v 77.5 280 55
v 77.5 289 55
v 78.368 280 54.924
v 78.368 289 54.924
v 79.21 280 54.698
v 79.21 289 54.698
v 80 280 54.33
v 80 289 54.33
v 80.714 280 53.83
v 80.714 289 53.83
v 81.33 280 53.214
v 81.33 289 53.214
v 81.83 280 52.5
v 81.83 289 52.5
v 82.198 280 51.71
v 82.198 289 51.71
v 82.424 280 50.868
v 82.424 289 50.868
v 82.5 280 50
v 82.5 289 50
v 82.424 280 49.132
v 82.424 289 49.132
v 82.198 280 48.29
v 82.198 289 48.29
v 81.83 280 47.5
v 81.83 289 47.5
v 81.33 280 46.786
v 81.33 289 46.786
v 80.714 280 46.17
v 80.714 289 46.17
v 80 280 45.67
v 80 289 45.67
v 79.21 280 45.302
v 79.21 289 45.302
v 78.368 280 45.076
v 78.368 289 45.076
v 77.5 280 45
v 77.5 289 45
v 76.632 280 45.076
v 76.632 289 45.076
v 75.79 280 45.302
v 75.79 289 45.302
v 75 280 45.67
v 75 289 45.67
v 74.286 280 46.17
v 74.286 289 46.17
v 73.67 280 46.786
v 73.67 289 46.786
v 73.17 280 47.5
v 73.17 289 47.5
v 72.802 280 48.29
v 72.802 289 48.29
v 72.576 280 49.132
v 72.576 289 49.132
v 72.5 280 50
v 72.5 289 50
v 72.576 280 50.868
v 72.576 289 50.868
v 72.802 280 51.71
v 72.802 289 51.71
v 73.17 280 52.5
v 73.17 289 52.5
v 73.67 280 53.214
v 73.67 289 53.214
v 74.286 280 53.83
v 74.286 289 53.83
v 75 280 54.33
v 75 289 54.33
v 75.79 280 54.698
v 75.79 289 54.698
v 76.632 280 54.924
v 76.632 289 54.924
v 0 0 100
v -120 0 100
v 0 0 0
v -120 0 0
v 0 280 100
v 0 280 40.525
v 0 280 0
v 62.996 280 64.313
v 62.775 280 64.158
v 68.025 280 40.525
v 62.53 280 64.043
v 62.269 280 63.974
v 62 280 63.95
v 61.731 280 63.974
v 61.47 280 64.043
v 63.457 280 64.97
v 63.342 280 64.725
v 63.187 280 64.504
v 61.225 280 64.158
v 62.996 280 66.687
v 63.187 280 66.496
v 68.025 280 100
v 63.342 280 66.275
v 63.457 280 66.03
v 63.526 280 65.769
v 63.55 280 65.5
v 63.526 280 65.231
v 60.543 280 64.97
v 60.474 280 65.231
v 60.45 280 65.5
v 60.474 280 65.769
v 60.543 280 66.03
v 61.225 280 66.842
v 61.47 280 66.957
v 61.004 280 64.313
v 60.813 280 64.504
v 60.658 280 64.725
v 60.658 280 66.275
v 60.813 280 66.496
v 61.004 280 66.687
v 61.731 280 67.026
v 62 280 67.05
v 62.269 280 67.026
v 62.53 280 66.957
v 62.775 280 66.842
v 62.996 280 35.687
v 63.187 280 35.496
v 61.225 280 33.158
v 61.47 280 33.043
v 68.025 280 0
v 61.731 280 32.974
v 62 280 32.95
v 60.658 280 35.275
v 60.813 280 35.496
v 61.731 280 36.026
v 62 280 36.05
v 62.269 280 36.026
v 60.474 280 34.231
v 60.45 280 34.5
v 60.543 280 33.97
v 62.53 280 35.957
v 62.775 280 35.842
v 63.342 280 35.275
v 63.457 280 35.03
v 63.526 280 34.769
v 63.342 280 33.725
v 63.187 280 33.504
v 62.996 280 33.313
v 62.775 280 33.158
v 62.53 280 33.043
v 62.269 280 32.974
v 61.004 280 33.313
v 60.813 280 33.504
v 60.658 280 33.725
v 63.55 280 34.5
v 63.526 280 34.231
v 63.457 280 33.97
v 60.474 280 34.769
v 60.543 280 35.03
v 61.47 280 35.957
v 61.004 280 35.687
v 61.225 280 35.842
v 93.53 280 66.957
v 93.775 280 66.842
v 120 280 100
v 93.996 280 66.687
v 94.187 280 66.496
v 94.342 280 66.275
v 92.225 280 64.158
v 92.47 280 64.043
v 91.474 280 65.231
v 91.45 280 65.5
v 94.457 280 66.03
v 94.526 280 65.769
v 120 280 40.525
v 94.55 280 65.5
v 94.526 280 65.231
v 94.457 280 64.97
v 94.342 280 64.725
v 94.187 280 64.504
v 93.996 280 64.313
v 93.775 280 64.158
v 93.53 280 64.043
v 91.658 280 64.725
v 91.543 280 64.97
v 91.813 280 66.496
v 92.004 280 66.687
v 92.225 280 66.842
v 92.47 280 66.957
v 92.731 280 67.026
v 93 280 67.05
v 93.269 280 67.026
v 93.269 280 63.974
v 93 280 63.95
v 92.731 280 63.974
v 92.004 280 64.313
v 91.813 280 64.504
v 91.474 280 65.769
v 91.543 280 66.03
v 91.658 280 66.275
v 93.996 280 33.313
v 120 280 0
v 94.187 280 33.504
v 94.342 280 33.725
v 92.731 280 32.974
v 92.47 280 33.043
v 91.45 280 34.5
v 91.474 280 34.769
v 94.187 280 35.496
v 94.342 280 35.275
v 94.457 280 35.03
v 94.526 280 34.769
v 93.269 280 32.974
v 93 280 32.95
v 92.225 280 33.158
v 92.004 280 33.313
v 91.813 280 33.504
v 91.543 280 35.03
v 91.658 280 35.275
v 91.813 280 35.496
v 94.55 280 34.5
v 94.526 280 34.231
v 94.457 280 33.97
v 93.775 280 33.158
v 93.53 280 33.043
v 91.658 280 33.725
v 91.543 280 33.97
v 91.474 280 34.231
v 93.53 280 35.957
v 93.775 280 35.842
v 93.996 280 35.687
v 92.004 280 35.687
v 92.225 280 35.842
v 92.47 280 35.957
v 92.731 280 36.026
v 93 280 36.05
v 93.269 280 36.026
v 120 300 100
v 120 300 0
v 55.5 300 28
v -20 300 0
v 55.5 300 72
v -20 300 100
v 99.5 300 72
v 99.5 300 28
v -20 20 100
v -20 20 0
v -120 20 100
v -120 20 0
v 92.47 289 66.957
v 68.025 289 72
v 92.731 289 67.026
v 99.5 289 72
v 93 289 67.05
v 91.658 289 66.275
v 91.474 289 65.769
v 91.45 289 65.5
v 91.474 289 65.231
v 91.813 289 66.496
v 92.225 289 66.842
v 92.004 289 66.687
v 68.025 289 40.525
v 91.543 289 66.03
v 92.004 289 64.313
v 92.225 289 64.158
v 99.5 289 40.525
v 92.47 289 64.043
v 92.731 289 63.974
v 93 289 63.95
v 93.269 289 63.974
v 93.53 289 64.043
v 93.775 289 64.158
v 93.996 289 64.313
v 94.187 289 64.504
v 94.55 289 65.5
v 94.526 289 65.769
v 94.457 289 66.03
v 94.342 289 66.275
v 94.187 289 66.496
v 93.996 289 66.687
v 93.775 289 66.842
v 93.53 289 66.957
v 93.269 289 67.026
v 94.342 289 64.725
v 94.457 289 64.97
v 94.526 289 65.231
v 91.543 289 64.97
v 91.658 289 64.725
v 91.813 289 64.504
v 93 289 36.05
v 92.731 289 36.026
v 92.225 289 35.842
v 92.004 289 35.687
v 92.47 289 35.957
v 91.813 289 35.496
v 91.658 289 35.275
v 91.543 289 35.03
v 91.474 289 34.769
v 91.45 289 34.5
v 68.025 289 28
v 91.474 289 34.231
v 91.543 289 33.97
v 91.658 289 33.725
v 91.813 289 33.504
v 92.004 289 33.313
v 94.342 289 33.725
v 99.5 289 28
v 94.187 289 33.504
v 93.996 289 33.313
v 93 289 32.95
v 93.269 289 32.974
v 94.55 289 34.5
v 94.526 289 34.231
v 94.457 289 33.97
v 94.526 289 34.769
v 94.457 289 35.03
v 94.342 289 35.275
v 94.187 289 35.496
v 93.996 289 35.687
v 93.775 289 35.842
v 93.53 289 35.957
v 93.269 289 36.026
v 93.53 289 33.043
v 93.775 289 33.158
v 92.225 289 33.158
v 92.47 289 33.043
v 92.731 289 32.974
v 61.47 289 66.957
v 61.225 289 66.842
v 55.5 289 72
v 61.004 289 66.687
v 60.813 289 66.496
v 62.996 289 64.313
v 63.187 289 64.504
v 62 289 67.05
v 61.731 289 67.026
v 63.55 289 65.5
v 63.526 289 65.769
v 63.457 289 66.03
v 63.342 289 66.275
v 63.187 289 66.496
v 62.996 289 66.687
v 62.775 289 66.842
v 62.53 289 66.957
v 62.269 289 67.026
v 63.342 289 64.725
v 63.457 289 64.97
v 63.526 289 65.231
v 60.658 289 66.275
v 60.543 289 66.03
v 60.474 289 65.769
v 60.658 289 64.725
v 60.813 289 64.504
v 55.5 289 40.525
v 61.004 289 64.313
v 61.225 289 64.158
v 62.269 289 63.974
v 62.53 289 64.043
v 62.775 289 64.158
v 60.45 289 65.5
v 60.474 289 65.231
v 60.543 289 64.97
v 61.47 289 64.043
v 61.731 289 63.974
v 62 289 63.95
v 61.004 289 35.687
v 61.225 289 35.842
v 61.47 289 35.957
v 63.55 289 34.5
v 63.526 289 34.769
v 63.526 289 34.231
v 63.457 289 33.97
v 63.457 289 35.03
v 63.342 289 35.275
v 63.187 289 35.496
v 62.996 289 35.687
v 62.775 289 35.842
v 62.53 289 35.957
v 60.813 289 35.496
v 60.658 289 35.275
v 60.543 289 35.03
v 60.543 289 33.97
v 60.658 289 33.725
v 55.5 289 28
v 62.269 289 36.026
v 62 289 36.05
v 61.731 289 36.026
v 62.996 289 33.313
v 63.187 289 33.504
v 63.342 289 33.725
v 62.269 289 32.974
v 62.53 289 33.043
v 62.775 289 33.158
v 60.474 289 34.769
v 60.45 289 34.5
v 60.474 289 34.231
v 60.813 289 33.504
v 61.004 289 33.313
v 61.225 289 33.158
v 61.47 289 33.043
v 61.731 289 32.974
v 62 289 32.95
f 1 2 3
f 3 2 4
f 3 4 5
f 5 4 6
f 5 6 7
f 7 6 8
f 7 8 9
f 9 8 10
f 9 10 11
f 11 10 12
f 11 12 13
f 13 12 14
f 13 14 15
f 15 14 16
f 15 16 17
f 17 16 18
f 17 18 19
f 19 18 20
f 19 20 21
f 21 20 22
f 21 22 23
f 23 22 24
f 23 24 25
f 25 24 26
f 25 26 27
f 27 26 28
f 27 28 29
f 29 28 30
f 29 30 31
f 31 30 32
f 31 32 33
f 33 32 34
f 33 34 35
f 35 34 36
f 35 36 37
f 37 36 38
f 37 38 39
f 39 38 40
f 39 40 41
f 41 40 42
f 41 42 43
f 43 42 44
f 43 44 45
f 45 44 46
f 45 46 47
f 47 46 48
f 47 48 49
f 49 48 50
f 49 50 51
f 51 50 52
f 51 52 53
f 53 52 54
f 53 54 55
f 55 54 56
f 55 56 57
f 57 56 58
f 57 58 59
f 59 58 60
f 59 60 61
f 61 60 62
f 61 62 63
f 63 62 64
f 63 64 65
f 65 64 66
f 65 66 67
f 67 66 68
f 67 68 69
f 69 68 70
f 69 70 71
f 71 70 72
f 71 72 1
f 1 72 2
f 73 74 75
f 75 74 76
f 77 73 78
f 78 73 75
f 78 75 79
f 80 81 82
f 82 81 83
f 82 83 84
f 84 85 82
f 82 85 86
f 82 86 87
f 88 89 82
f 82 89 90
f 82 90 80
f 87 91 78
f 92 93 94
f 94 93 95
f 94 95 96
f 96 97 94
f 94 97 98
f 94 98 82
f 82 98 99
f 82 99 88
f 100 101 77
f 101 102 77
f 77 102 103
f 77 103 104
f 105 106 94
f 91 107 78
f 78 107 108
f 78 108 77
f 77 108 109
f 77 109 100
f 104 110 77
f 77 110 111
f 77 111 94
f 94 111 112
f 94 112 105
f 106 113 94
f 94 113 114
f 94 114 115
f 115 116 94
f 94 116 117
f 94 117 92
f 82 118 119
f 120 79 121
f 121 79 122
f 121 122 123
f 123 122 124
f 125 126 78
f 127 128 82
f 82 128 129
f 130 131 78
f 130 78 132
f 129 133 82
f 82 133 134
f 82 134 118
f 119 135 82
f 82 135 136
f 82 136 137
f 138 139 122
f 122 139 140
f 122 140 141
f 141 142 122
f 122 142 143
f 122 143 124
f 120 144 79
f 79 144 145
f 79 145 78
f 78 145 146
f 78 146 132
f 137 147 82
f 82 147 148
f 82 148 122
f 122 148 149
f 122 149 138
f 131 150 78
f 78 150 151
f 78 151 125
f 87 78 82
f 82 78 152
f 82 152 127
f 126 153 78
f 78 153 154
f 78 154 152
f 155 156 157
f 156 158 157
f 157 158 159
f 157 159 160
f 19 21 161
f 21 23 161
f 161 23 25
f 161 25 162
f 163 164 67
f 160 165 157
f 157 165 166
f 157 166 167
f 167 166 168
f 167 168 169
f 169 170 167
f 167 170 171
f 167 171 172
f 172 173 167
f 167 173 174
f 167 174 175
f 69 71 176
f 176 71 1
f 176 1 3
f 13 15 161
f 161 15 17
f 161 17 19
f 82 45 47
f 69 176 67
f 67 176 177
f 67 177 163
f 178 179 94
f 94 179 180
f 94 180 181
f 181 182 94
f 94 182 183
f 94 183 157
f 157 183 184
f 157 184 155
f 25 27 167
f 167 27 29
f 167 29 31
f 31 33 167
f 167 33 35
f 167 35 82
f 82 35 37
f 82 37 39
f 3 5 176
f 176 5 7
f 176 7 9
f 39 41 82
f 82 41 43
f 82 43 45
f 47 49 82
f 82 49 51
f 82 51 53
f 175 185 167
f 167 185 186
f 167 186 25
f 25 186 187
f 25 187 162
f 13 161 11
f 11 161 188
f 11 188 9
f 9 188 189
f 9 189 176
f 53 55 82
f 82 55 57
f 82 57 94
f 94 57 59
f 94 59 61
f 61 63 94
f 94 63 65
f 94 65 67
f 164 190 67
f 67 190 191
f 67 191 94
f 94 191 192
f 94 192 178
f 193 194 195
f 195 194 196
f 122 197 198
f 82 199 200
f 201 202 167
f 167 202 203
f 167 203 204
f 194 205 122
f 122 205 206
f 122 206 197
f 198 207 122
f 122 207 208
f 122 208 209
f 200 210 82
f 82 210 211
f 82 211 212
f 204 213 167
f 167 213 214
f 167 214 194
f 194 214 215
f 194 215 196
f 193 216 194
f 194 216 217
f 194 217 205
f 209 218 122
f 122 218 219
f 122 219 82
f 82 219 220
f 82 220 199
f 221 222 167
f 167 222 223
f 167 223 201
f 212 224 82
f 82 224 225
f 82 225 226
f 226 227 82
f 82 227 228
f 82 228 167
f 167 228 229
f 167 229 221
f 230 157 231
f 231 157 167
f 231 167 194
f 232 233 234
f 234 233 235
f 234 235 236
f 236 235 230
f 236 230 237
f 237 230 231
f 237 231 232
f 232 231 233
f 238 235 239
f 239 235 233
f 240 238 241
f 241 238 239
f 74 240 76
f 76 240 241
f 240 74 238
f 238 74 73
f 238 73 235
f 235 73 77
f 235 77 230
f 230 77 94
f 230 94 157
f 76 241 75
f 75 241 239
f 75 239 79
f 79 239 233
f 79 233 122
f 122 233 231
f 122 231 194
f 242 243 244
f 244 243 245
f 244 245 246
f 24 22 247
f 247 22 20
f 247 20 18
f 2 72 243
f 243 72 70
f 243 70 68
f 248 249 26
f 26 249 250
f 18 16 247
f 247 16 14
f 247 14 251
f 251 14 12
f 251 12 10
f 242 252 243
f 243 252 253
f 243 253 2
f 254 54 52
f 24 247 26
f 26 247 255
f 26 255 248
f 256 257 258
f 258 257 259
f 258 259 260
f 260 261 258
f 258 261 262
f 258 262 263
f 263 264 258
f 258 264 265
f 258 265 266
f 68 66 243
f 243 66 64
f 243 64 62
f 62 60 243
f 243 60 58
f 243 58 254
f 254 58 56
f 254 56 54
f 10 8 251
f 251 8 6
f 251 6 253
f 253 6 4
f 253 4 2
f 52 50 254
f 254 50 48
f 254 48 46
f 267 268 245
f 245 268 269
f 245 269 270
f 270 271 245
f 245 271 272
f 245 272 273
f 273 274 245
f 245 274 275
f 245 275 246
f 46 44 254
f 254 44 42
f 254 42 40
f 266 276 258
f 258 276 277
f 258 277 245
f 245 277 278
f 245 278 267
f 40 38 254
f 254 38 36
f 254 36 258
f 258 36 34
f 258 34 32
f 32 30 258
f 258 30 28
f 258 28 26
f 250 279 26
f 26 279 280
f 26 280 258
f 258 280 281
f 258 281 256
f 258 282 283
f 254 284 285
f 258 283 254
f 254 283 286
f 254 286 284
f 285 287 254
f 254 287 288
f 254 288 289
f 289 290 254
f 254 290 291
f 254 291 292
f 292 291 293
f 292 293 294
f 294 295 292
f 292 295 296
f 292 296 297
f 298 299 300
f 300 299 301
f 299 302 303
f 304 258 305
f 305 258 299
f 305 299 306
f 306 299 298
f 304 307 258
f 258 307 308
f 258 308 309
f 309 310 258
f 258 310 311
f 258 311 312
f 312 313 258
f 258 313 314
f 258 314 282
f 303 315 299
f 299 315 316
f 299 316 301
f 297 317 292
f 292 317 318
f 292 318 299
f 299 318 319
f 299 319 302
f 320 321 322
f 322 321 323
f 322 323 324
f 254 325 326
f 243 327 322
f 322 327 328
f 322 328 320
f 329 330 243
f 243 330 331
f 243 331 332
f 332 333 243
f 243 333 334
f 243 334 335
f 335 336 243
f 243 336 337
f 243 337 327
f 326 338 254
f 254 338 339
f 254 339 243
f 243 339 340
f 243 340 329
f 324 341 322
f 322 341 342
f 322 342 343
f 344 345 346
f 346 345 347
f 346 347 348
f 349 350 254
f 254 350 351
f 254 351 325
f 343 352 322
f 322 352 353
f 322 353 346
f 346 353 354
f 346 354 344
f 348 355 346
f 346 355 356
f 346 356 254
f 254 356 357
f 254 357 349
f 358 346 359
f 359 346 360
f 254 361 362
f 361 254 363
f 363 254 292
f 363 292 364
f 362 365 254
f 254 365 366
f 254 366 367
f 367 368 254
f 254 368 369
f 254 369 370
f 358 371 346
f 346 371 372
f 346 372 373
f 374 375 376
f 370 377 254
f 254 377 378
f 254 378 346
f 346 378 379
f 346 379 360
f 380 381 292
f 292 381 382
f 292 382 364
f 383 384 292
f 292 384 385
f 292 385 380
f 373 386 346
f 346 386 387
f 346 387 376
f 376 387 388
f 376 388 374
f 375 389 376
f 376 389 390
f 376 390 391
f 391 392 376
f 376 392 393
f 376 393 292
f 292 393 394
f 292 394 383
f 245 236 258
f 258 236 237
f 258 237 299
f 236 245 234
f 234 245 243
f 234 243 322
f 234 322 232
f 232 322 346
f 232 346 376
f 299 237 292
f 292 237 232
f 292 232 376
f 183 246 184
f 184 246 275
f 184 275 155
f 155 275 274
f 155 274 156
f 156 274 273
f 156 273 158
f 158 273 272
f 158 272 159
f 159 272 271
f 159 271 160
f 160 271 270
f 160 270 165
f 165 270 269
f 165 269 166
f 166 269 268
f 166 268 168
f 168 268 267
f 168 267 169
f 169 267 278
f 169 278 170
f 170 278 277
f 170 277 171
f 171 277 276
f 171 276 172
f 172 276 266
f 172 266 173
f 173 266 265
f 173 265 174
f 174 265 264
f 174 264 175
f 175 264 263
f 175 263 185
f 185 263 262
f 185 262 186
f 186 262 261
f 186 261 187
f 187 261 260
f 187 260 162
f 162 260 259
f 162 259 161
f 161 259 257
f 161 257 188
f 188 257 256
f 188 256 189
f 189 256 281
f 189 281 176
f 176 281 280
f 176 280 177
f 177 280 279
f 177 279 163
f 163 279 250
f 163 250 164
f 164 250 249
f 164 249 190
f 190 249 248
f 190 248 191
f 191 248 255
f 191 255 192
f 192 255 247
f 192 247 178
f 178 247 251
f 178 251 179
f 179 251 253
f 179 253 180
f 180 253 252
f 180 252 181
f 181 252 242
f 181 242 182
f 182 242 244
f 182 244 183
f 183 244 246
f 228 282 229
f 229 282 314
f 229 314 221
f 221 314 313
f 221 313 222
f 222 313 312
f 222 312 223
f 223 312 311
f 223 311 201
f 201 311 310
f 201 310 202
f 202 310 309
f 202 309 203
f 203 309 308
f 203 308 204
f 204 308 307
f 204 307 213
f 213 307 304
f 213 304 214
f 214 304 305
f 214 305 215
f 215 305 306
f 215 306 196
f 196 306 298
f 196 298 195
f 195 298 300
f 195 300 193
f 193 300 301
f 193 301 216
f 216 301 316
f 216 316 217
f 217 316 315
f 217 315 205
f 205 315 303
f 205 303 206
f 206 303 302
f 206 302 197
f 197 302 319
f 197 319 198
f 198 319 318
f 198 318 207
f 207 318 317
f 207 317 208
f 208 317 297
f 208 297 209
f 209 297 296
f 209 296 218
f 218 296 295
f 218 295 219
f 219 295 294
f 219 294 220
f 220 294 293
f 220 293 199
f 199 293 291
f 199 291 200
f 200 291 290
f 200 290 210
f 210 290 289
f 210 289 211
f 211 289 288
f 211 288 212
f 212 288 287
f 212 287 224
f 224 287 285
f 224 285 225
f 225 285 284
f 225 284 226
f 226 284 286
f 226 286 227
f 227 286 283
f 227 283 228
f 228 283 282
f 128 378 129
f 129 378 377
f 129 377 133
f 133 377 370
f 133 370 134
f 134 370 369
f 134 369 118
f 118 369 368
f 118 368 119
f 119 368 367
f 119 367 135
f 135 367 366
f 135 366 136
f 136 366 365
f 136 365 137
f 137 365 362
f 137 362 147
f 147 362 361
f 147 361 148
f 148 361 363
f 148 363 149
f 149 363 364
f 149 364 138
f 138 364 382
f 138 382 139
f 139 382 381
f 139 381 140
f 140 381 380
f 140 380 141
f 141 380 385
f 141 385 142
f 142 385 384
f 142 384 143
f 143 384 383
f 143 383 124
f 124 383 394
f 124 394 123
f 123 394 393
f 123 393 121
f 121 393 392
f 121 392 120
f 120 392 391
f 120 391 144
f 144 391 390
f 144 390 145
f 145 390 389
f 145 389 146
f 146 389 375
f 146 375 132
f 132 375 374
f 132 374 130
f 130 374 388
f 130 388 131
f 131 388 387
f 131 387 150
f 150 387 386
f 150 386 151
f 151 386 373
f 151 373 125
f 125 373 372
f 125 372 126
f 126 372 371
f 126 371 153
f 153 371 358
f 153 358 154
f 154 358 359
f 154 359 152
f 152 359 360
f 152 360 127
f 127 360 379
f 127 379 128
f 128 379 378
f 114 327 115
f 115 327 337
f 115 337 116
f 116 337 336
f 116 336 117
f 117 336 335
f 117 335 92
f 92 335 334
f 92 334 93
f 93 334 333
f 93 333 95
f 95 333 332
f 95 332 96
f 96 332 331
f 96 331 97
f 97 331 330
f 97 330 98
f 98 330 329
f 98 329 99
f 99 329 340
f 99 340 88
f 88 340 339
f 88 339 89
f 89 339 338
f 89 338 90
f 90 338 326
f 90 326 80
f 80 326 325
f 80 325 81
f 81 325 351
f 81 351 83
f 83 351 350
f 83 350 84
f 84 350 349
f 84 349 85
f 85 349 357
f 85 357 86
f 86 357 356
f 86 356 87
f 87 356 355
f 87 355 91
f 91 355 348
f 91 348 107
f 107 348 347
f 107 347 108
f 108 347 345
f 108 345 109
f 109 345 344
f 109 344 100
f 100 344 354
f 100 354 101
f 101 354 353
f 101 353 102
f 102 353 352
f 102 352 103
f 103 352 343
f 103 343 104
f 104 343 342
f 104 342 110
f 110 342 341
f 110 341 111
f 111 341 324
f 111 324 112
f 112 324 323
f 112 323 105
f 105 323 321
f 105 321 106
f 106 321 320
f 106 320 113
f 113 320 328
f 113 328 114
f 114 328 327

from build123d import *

# Parameters (mm, degrees)
BOSS_EXTRUDE1_DEPTH = 100
SKETCH2_R           = 5
CUT_EXTRUDE1_DEPTH  = 100
SKETCH6_W           = 44
SKETCH6_H           = 44
CUT_EXTRUDE2_DEPTH  = 11
SKETCH7_R           = 1.55
CUT_EXTRUDE3_DEPTH  = 11


with BuildPart() as part:
    # Sketch1 → Boss-Extrude1 (new body)
    with BuildSketch(Plane.XY):
        Polygon((0, 0), (0, 280), (120, 280), (120, 300), (-20, 300), (-20, 20), (-120, 20), (-120, 0), align=None)
    extrude(amount=BOSS_EXTRUDE1_DEPTH)

    # Sketch2 → Cut-Extrude1 (cut)
    with BuildSketch(Plane(origin=(0, 300, 0), x_dir=(1, 0, 0), z_dir=(0, 1, 0))):
        with Locations(Location((77.5, -50, 0), (0, 0, 270))):
            Circle(SKETCH2_R)
    extrude(amount=-CUT_EXTRUDE1_DEPTH, mode=Mode.SUBTRACT)

    # Sketch6 → Cut-Extrude2 (cut)
    with BuildSketch(Plane(origin=(0, 300, 0), x_dir=(1, 0, 0), z_dir=(0, 1, 0))):
        with Locations((77.5, -50)):
            Rectangle(SKETCH6_W, SKETCH6_H)
    extrude(amount=-CUT_EXTRUDE2_DEPTH, mode=Mode.SUBTRACT)

    # Sketch7 → Cut-Extrude3 (cut)
    with BuildSketch(Plane(origin=(0, 289, 0), x_dir=(1, 0, 0), z_dir=(0, 1, 0))):
        with Locations(Location((62, -34.5, 0), (0, 0, 270))):
            Circle(SKETCH7_R)
        with Locations(Location((93, -34.5, 0), (0, 0, 270))):
            Circle(SKETCH7_R)
        with Locations(Location((93, -65.5, 0), (0, 0, 270))):
            Circle(SKETCH7_R)
        with Locations(Location((62, -65.5, 0), (0, 0, 270))):
            Circle(SKETCH7_R)
    extrude(amount=-CUT_EXTRUDE3_DEPTH, mode=Mode.SUBTRACT)


solid = part.part
